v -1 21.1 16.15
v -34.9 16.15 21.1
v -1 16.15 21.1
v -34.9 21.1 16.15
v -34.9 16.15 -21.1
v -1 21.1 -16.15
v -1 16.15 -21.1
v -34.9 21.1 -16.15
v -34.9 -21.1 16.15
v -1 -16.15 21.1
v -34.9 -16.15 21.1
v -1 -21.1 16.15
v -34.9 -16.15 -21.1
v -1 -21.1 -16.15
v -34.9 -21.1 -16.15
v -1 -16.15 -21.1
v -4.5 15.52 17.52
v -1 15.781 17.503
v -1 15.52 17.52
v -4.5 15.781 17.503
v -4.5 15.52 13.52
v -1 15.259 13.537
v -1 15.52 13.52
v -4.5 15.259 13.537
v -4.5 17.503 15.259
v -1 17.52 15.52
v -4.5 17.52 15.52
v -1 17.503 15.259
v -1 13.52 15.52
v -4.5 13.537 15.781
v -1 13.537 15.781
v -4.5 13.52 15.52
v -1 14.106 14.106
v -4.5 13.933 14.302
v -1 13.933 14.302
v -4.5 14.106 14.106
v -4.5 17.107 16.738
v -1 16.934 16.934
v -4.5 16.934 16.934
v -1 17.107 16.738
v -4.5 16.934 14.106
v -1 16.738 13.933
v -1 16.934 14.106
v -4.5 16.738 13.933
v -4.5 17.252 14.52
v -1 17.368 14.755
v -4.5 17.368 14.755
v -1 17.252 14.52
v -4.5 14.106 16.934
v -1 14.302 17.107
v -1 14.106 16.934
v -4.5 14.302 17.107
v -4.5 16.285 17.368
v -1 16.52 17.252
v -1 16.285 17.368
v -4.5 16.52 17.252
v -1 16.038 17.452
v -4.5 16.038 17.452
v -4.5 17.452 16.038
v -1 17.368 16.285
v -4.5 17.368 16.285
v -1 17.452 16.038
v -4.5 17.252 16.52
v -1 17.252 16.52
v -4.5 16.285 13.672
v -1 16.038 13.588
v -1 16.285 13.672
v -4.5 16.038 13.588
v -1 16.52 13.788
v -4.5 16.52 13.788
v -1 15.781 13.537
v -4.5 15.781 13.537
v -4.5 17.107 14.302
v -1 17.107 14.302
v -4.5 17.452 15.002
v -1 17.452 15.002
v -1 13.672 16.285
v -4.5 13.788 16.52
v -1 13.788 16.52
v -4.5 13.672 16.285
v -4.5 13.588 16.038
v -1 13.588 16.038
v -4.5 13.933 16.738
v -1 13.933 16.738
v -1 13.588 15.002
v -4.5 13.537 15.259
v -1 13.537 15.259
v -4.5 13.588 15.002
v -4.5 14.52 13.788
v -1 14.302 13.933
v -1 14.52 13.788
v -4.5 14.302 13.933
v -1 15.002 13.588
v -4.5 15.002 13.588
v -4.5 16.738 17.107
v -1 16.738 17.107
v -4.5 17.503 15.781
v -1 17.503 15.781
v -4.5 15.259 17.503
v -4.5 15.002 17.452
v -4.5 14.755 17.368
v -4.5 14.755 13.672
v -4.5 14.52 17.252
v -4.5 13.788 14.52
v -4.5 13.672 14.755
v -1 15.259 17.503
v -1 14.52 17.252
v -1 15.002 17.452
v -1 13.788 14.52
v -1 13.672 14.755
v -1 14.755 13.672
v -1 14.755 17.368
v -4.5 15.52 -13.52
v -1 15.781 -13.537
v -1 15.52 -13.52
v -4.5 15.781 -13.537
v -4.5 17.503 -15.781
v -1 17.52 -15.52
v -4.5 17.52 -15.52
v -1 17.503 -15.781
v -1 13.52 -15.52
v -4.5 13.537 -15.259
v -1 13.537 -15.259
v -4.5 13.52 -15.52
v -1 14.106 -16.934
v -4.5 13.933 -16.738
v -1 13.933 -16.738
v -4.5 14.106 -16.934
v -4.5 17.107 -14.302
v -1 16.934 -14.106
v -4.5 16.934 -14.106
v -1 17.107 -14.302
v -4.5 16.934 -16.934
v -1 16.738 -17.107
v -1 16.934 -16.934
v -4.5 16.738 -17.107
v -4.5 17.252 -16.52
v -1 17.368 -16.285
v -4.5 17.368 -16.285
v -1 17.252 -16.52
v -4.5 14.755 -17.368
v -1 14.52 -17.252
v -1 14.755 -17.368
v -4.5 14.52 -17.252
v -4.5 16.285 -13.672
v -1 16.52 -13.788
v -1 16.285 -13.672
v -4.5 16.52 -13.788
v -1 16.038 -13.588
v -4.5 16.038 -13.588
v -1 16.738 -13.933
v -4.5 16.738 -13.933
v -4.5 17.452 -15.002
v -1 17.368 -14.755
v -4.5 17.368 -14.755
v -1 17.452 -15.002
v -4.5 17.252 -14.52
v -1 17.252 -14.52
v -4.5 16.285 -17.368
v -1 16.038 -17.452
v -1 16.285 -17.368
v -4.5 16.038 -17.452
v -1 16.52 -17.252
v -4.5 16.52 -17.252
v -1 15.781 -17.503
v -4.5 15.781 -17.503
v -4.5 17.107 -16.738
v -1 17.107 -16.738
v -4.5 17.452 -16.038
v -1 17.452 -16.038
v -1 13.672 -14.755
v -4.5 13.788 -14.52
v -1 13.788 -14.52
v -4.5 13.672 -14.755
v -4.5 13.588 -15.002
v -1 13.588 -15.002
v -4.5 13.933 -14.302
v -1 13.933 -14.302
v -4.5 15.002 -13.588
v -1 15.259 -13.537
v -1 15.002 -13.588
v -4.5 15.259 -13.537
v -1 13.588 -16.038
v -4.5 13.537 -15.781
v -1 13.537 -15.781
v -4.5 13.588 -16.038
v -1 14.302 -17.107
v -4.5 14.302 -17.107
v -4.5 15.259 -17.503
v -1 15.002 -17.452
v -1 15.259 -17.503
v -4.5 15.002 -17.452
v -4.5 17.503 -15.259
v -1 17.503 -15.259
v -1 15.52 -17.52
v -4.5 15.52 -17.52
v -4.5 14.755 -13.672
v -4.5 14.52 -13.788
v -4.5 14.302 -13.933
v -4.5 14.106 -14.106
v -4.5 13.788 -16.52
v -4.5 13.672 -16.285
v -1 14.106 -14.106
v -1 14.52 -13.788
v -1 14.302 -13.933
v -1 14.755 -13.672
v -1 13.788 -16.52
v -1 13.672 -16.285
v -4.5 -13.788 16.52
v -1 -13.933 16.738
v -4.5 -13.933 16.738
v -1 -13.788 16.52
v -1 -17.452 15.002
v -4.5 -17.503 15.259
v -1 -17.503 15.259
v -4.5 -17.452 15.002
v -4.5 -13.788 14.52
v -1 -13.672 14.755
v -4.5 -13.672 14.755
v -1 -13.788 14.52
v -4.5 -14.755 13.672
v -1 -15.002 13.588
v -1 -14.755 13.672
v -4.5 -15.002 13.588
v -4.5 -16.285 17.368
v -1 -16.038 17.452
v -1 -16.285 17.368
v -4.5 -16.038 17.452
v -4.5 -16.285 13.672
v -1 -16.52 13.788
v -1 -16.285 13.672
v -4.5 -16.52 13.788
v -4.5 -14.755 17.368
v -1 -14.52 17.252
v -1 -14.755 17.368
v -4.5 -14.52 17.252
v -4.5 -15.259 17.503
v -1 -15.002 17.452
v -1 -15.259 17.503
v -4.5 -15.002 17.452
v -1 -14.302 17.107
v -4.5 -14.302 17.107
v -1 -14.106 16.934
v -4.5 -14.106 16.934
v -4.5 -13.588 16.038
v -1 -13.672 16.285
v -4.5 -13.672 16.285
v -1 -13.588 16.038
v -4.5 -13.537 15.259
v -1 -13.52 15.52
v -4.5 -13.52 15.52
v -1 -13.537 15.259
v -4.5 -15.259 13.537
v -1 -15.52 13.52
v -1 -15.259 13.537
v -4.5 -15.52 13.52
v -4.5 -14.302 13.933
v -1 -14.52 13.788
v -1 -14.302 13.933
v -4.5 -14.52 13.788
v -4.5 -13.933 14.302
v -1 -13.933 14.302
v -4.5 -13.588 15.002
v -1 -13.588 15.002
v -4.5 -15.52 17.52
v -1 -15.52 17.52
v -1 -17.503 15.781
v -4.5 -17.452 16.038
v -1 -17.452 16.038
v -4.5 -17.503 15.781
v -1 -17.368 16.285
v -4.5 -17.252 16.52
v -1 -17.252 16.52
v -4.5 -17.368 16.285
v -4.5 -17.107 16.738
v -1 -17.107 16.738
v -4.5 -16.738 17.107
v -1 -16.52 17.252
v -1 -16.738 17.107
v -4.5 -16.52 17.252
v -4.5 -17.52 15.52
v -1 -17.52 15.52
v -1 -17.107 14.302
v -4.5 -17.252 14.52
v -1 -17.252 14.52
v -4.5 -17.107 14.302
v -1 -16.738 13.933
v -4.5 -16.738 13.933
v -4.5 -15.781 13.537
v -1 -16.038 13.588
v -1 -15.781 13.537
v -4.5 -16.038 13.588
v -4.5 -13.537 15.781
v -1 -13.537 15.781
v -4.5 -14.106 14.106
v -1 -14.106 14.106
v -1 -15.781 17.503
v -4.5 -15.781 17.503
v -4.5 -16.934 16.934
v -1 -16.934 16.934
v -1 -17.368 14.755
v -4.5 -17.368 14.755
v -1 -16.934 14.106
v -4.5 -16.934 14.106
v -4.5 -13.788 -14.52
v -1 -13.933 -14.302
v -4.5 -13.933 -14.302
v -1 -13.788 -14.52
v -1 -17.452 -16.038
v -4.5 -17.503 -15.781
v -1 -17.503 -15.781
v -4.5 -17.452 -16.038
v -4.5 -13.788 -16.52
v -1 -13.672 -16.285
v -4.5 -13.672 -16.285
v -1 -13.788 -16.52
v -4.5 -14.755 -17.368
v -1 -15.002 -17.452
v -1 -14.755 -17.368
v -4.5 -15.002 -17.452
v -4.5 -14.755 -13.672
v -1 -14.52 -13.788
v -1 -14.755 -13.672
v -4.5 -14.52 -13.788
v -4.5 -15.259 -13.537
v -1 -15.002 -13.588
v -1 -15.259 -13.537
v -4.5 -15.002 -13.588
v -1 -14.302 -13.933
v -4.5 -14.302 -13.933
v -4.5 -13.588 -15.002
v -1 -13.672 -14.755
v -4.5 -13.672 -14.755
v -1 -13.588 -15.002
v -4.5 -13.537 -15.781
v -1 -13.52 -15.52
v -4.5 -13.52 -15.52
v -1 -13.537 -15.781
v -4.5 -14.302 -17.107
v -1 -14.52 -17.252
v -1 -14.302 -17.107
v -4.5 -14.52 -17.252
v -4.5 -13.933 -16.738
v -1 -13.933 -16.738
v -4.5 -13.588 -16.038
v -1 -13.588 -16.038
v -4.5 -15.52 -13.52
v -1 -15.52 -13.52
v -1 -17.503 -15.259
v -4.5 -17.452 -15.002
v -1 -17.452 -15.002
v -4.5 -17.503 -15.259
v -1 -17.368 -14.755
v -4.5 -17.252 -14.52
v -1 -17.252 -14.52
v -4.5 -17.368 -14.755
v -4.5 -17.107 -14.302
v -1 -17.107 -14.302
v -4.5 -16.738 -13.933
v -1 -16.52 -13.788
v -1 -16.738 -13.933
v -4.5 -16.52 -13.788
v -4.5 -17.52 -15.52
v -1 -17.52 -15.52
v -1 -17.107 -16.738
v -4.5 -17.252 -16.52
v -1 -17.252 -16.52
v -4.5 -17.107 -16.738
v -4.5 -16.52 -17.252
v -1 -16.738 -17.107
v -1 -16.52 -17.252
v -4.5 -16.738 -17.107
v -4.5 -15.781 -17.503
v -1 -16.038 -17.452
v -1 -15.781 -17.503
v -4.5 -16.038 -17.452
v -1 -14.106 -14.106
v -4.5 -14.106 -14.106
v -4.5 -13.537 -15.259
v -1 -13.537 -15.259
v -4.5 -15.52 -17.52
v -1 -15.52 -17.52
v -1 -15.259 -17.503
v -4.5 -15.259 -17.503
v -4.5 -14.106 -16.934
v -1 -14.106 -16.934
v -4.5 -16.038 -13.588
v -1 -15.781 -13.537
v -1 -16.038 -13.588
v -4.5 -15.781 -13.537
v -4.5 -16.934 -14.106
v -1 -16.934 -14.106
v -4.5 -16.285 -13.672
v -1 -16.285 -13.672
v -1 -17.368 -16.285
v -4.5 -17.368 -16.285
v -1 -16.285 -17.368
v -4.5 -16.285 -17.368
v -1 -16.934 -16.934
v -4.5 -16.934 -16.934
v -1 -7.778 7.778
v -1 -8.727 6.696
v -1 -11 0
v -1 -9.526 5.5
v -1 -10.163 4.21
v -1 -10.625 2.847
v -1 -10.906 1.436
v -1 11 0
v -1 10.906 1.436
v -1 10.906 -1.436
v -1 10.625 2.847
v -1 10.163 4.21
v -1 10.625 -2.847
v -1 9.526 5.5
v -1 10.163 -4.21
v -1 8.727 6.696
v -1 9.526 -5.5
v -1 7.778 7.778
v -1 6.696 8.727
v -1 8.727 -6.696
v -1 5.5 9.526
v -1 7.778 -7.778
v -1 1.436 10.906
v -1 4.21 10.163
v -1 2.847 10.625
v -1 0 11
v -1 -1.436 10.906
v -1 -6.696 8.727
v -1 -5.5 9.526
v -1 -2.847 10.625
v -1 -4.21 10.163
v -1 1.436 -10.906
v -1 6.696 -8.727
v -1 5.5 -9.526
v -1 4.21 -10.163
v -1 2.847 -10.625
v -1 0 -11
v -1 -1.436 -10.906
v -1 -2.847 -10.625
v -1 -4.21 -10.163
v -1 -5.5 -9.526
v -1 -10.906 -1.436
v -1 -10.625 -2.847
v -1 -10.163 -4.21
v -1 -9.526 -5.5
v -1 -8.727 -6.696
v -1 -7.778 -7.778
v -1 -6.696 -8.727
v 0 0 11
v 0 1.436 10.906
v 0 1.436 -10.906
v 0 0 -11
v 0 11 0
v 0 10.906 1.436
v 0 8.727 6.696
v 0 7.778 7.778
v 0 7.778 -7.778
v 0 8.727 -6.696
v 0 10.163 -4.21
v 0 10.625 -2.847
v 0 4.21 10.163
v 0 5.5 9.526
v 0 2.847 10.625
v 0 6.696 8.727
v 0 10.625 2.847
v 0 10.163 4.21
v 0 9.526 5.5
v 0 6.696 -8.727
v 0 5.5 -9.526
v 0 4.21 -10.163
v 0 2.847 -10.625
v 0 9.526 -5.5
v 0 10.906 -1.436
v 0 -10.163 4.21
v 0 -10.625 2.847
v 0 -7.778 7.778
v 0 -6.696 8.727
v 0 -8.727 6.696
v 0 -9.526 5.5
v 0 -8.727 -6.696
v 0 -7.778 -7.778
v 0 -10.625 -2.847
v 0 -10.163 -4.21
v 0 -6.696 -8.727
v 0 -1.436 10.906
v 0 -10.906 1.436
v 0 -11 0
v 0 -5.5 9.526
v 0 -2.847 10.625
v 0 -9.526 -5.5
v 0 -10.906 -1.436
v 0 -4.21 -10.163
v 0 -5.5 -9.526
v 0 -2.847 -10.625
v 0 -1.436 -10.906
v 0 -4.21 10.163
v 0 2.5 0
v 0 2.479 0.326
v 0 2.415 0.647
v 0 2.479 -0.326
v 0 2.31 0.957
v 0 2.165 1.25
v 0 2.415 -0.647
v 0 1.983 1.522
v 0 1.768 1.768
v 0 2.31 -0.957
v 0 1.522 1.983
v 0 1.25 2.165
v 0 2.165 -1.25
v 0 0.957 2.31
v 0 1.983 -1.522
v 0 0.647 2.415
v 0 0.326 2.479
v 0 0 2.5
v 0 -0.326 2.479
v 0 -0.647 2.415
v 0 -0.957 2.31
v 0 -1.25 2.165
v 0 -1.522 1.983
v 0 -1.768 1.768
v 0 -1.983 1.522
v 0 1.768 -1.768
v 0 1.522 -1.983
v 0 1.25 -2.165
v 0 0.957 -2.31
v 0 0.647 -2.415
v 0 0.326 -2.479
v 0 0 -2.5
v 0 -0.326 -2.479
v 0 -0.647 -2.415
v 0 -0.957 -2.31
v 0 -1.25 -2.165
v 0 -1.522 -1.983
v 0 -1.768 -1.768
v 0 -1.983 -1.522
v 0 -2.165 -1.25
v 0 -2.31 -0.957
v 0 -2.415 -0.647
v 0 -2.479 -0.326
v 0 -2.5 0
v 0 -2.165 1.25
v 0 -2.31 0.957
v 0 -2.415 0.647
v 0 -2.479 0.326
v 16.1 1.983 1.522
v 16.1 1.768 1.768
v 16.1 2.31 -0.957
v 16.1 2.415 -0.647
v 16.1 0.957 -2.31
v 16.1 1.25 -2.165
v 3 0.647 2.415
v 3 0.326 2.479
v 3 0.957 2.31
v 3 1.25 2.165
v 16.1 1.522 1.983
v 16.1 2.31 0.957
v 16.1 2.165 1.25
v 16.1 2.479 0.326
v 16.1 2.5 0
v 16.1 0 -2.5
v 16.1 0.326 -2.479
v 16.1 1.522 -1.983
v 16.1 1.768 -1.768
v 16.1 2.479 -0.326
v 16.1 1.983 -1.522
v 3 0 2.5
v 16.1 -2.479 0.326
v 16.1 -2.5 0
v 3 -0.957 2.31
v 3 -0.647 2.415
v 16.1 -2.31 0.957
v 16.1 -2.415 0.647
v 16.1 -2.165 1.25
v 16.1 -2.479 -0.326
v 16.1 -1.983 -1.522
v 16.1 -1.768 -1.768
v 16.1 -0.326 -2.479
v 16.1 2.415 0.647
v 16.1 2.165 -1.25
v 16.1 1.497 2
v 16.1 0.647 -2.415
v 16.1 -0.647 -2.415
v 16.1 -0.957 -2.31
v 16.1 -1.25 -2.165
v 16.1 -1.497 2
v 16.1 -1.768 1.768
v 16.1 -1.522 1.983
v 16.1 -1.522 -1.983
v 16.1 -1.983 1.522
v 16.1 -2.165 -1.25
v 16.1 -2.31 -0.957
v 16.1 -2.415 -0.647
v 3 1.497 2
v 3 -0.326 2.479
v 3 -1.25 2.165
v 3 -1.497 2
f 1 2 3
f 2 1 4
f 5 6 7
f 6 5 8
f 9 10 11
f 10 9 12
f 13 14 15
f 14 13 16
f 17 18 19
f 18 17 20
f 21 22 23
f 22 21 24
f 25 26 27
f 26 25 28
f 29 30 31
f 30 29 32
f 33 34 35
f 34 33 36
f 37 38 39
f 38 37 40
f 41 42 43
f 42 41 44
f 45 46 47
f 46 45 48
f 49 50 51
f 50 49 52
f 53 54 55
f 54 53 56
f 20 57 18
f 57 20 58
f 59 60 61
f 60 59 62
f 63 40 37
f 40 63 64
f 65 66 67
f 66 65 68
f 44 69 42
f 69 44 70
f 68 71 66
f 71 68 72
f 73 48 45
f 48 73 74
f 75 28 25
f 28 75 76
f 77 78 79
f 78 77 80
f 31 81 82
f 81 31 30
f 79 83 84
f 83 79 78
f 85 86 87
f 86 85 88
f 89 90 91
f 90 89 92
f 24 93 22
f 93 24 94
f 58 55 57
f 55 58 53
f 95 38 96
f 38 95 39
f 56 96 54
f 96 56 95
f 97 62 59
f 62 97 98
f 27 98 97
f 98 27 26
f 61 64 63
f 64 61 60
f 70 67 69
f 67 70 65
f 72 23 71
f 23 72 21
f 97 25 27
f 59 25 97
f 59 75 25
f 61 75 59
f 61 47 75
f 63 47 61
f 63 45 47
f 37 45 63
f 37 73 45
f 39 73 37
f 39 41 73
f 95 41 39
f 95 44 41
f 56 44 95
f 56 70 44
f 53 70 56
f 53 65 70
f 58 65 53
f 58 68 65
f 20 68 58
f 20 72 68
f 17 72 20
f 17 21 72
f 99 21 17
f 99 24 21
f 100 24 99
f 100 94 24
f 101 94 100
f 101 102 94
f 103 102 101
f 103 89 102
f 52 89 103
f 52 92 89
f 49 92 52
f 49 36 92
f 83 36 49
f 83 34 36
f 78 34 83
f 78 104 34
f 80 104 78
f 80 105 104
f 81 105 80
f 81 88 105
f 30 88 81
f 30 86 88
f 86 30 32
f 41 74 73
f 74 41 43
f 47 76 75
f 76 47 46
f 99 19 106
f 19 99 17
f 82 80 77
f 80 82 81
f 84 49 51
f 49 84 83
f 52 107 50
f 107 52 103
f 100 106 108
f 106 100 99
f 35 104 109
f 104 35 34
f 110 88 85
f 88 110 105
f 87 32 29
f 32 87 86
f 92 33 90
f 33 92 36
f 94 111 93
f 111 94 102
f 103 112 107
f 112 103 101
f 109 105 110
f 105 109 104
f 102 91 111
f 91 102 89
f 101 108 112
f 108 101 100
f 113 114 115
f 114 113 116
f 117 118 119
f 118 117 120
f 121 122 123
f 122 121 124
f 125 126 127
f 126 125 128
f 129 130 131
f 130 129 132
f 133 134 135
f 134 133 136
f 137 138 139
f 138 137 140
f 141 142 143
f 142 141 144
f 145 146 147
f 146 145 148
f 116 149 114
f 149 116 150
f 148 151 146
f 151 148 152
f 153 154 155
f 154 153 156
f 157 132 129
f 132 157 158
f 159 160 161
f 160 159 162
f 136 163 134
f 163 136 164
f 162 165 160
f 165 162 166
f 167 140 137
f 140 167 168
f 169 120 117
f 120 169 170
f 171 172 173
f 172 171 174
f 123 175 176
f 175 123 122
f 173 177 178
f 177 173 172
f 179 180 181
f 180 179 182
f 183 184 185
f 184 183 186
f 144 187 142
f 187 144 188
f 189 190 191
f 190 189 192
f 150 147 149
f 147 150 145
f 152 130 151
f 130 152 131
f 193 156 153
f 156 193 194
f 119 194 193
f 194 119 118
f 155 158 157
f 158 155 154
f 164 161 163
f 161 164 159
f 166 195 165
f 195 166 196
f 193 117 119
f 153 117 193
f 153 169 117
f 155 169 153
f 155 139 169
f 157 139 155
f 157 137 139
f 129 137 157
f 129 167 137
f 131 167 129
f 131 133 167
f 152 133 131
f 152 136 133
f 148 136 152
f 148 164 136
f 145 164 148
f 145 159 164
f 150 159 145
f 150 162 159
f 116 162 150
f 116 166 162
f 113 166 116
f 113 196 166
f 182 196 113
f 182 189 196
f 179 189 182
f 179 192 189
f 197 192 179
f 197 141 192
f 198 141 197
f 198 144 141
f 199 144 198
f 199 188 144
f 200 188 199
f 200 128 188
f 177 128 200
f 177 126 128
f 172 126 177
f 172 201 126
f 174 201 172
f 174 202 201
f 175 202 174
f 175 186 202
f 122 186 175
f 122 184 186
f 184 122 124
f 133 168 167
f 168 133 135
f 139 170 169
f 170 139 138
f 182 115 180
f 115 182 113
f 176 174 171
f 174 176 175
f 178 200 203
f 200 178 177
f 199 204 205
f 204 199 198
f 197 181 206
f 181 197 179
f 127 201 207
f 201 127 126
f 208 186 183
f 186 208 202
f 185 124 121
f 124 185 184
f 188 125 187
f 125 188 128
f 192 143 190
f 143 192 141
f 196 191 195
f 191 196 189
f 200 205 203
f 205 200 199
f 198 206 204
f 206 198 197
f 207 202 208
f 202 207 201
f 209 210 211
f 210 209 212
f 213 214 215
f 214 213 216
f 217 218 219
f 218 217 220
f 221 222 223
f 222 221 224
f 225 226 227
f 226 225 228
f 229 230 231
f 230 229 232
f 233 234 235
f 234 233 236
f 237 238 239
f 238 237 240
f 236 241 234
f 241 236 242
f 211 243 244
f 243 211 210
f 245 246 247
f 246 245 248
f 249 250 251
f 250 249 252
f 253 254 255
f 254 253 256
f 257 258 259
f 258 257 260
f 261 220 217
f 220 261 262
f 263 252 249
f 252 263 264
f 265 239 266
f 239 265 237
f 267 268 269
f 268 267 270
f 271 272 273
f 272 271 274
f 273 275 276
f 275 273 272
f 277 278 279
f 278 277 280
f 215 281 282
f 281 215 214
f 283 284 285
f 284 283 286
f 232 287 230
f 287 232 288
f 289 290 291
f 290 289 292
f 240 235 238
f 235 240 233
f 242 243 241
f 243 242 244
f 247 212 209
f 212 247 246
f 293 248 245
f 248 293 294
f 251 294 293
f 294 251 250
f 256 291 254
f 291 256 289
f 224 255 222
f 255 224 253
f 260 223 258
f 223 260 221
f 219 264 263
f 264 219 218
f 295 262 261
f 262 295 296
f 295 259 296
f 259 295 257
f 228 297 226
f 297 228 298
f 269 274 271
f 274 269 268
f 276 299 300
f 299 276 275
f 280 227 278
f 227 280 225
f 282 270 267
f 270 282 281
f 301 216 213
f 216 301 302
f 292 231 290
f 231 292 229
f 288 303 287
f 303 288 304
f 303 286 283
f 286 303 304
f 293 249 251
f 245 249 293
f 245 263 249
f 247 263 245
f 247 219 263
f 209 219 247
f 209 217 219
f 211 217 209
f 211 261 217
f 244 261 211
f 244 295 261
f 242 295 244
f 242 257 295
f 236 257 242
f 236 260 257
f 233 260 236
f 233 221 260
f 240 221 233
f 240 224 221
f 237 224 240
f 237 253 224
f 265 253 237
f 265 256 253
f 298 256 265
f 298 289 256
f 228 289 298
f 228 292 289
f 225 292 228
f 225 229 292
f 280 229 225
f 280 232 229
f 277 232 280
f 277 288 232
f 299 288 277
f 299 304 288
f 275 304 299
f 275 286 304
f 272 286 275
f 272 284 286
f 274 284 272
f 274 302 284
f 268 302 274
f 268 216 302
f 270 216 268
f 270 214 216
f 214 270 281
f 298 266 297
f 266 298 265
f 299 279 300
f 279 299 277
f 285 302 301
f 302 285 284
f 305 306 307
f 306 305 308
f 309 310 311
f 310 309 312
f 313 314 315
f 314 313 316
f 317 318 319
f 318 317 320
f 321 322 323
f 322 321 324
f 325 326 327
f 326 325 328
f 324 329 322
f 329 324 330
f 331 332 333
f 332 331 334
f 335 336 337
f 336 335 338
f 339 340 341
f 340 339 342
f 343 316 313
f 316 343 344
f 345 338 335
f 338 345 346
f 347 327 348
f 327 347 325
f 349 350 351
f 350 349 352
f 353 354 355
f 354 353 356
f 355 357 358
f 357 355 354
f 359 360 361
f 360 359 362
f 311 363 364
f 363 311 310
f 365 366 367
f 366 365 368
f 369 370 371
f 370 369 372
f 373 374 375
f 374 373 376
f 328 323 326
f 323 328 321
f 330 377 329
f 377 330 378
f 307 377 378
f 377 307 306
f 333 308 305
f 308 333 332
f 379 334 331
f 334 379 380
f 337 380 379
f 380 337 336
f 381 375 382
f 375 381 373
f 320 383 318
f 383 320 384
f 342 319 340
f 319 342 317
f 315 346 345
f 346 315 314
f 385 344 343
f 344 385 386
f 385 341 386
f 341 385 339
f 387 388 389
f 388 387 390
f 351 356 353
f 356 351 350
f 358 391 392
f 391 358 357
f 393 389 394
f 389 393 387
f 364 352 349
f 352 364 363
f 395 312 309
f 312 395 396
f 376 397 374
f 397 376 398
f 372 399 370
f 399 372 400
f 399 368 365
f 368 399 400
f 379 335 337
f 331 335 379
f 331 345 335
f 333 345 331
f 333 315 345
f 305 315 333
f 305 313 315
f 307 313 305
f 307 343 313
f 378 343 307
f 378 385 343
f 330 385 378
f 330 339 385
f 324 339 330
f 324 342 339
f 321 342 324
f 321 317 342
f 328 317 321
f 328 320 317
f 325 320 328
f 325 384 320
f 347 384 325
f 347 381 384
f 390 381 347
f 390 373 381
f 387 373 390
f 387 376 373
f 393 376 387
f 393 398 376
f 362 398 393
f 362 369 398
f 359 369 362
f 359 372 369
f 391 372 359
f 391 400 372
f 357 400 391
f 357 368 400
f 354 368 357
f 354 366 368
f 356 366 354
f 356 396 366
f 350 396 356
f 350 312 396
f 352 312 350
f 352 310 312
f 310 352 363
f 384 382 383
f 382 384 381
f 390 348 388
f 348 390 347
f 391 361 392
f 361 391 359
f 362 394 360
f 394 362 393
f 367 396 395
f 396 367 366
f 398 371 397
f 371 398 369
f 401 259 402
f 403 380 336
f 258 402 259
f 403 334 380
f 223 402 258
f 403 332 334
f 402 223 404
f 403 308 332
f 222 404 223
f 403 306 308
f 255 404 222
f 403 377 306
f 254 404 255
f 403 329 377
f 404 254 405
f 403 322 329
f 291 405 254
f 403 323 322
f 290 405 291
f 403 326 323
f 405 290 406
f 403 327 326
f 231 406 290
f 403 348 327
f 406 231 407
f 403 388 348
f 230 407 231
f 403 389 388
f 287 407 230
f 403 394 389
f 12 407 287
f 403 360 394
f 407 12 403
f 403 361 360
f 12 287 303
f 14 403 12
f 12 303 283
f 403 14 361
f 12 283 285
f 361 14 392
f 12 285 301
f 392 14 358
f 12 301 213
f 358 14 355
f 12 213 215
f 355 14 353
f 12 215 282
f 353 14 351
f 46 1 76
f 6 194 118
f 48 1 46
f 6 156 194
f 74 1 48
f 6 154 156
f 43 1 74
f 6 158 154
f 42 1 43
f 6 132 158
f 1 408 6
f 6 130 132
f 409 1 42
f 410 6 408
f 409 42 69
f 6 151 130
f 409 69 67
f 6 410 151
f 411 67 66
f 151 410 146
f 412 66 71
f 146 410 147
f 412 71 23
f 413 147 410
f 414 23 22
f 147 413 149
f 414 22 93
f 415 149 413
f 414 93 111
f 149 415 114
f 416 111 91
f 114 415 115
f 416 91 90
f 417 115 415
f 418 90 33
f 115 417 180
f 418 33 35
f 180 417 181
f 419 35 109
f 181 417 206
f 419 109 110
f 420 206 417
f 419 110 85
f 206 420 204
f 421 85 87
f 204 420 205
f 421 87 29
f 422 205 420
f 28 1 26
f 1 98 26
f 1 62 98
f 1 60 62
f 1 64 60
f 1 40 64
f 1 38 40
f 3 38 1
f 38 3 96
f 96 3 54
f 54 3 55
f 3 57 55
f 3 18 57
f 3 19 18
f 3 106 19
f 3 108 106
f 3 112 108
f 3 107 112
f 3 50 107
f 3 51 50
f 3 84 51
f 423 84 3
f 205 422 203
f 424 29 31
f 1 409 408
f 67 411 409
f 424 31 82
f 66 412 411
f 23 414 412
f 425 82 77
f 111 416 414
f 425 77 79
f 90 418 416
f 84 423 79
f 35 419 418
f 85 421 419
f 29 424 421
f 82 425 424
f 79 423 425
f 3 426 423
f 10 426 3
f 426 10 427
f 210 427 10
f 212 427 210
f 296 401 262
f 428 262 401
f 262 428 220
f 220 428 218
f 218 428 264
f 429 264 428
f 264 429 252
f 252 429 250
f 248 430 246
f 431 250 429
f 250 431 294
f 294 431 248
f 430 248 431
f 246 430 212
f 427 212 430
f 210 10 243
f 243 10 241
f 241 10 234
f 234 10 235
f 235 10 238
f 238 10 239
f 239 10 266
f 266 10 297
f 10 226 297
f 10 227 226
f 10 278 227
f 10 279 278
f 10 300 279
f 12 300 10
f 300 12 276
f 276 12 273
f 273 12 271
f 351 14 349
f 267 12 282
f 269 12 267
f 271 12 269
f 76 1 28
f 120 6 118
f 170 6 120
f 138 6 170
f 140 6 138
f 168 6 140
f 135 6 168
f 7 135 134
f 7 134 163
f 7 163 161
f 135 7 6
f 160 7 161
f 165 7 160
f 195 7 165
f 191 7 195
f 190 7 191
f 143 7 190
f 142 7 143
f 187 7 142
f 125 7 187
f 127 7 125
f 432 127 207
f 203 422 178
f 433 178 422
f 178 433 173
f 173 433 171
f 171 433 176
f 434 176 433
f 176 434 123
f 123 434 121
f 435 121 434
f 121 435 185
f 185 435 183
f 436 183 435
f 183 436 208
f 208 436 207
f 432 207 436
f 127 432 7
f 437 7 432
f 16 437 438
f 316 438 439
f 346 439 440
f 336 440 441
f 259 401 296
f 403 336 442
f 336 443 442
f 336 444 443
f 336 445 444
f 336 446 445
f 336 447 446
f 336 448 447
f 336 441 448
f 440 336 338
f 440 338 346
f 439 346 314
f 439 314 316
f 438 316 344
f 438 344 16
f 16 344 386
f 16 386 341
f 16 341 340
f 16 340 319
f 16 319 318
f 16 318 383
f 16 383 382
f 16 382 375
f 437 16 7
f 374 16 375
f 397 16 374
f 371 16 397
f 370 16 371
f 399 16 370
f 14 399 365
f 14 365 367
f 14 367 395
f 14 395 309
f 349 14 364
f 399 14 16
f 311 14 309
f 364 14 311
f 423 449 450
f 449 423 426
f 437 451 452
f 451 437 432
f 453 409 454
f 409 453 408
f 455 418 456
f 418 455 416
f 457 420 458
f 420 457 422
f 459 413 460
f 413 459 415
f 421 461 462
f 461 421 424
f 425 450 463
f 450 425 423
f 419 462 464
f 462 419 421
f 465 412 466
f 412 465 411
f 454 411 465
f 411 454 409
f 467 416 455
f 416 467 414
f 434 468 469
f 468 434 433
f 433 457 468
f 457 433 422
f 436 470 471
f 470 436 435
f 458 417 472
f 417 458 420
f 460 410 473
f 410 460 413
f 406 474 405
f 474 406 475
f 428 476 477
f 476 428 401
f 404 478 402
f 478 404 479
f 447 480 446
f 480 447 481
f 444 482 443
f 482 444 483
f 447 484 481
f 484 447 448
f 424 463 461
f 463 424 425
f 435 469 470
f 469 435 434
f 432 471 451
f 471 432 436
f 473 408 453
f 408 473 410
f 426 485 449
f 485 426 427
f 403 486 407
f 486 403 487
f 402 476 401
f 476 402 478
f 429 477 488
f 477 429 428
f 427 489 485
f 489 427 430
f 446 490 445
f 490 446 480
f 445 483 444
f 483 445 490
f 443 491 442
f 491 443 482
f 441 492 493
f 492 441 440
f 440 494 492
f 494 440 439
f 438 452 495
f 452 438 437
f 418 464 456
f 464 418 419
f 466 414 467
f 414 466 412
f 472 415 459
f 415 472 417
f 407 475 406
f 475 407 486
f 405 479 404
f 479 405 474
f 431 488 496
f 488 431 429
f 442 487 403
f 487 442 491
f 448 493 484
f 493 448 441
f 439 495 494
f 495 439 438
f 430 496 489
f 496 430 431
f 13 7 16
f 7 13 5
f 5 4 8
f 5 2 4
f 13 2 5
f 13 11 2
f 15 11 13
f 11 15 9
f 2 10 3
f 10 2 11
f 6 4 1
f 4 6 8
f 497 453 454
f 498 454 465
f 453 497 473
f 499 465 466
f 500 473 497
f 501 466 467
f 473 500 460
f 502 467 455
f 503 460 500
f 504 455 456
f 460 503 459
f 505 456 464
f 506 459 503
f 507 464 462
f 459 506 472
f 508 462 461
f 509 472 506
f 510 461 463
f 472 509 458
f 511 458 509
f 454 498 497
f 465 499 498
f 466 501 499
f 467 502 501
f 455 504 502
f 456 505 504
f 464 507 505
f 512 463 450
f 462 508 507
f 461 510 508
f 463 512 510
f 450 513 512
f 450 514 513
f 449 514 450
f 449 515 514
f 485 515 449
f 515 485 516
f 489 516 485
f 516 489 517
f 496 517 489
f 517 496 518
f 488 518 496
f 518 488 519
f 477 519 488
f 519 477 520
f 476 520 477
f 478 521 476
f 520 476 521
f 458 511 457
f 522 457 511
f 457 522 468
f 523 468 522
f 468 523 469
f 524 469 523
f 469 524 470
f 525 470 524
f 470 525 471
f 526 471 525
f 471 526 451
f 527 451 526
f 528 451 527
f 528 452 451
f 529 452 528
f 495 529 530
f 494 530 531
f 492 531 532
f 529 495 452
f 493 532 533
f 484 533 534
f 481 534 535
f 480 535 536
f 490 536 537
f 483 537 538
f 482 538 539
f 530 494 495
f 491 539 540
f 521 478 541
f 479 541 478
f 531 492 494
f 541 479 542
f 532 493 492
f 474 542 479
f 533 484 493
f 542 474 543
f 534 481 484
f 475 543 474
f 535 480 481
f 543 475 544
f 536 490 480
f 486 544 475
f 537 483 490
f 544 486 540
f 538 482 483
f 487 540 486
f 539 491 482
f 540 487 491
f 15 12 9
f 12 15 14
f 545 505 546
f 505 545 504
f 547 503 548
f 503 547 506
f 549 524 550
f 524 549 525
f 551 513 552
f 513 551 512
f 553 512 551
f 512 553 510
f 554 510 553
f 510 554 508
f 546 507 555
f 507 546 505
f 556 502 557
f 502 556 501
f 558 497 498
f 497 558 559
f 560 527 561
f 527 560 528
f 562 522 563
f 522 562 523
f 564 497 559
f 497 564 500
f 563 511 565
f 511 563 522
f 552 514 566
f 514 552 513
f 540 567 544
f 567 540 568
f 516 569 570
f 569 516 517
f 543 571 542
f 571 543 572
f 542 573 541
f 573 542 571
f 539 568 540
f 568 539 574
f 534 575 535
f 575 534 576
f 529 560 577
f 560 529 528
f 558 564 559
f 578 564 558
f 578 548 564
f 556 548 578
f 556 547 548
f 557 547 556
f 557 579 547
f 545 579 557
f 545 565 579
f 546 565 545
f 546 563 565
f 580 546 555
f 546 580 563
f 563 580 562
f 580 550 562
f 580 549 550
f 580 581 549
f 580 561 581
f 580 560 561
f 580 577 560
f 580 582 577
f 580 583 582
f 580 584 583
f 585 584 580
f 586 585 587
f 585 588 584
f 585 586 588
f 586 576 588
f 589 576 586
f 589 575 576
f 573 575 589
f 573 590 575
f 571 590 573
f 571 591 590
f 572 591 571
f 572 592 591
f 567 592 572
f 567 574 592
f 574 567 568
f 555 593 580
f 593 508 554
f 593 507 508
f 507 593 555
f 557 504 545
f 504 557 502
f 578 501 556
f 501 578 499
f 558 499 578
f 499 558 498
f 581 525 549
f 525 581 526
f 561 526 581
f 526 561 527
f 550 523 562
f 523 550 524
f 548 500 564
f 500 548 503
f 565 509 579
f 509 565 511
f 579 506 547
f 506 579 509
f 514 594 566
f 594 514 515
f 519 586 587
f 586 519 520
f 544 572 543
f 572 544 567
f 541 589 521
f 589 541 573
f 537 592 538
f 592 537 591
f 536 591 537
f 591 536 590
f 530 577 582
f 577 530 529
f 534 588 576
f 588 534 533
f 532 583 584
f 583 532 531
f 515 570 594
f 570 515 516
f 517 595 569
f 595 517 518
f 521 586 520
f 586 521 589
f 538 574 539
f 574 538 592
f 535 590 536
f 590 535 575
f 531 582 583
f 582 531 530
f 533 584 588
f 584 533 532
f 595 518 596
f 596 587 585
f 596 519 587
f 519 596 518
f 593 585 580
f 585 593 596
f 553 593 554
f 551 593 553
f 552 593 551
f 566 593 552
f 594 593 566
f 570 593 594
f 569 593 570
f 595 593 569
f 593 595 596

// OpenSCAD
/**********************************************************************************************************************
 **
 ** lib/MCAD/stepper_nema17_short.scad
 **
 ** This file renders a NEMA stepper motor of the dimensions specified by the file name.
 **
 **********************************************************************************************************************/

include <MCAD/stepper.scad>

$fn = 48;
rotate([0, -90, 0])
	motor(Nema17, NemaShort, dualAxis = false);
